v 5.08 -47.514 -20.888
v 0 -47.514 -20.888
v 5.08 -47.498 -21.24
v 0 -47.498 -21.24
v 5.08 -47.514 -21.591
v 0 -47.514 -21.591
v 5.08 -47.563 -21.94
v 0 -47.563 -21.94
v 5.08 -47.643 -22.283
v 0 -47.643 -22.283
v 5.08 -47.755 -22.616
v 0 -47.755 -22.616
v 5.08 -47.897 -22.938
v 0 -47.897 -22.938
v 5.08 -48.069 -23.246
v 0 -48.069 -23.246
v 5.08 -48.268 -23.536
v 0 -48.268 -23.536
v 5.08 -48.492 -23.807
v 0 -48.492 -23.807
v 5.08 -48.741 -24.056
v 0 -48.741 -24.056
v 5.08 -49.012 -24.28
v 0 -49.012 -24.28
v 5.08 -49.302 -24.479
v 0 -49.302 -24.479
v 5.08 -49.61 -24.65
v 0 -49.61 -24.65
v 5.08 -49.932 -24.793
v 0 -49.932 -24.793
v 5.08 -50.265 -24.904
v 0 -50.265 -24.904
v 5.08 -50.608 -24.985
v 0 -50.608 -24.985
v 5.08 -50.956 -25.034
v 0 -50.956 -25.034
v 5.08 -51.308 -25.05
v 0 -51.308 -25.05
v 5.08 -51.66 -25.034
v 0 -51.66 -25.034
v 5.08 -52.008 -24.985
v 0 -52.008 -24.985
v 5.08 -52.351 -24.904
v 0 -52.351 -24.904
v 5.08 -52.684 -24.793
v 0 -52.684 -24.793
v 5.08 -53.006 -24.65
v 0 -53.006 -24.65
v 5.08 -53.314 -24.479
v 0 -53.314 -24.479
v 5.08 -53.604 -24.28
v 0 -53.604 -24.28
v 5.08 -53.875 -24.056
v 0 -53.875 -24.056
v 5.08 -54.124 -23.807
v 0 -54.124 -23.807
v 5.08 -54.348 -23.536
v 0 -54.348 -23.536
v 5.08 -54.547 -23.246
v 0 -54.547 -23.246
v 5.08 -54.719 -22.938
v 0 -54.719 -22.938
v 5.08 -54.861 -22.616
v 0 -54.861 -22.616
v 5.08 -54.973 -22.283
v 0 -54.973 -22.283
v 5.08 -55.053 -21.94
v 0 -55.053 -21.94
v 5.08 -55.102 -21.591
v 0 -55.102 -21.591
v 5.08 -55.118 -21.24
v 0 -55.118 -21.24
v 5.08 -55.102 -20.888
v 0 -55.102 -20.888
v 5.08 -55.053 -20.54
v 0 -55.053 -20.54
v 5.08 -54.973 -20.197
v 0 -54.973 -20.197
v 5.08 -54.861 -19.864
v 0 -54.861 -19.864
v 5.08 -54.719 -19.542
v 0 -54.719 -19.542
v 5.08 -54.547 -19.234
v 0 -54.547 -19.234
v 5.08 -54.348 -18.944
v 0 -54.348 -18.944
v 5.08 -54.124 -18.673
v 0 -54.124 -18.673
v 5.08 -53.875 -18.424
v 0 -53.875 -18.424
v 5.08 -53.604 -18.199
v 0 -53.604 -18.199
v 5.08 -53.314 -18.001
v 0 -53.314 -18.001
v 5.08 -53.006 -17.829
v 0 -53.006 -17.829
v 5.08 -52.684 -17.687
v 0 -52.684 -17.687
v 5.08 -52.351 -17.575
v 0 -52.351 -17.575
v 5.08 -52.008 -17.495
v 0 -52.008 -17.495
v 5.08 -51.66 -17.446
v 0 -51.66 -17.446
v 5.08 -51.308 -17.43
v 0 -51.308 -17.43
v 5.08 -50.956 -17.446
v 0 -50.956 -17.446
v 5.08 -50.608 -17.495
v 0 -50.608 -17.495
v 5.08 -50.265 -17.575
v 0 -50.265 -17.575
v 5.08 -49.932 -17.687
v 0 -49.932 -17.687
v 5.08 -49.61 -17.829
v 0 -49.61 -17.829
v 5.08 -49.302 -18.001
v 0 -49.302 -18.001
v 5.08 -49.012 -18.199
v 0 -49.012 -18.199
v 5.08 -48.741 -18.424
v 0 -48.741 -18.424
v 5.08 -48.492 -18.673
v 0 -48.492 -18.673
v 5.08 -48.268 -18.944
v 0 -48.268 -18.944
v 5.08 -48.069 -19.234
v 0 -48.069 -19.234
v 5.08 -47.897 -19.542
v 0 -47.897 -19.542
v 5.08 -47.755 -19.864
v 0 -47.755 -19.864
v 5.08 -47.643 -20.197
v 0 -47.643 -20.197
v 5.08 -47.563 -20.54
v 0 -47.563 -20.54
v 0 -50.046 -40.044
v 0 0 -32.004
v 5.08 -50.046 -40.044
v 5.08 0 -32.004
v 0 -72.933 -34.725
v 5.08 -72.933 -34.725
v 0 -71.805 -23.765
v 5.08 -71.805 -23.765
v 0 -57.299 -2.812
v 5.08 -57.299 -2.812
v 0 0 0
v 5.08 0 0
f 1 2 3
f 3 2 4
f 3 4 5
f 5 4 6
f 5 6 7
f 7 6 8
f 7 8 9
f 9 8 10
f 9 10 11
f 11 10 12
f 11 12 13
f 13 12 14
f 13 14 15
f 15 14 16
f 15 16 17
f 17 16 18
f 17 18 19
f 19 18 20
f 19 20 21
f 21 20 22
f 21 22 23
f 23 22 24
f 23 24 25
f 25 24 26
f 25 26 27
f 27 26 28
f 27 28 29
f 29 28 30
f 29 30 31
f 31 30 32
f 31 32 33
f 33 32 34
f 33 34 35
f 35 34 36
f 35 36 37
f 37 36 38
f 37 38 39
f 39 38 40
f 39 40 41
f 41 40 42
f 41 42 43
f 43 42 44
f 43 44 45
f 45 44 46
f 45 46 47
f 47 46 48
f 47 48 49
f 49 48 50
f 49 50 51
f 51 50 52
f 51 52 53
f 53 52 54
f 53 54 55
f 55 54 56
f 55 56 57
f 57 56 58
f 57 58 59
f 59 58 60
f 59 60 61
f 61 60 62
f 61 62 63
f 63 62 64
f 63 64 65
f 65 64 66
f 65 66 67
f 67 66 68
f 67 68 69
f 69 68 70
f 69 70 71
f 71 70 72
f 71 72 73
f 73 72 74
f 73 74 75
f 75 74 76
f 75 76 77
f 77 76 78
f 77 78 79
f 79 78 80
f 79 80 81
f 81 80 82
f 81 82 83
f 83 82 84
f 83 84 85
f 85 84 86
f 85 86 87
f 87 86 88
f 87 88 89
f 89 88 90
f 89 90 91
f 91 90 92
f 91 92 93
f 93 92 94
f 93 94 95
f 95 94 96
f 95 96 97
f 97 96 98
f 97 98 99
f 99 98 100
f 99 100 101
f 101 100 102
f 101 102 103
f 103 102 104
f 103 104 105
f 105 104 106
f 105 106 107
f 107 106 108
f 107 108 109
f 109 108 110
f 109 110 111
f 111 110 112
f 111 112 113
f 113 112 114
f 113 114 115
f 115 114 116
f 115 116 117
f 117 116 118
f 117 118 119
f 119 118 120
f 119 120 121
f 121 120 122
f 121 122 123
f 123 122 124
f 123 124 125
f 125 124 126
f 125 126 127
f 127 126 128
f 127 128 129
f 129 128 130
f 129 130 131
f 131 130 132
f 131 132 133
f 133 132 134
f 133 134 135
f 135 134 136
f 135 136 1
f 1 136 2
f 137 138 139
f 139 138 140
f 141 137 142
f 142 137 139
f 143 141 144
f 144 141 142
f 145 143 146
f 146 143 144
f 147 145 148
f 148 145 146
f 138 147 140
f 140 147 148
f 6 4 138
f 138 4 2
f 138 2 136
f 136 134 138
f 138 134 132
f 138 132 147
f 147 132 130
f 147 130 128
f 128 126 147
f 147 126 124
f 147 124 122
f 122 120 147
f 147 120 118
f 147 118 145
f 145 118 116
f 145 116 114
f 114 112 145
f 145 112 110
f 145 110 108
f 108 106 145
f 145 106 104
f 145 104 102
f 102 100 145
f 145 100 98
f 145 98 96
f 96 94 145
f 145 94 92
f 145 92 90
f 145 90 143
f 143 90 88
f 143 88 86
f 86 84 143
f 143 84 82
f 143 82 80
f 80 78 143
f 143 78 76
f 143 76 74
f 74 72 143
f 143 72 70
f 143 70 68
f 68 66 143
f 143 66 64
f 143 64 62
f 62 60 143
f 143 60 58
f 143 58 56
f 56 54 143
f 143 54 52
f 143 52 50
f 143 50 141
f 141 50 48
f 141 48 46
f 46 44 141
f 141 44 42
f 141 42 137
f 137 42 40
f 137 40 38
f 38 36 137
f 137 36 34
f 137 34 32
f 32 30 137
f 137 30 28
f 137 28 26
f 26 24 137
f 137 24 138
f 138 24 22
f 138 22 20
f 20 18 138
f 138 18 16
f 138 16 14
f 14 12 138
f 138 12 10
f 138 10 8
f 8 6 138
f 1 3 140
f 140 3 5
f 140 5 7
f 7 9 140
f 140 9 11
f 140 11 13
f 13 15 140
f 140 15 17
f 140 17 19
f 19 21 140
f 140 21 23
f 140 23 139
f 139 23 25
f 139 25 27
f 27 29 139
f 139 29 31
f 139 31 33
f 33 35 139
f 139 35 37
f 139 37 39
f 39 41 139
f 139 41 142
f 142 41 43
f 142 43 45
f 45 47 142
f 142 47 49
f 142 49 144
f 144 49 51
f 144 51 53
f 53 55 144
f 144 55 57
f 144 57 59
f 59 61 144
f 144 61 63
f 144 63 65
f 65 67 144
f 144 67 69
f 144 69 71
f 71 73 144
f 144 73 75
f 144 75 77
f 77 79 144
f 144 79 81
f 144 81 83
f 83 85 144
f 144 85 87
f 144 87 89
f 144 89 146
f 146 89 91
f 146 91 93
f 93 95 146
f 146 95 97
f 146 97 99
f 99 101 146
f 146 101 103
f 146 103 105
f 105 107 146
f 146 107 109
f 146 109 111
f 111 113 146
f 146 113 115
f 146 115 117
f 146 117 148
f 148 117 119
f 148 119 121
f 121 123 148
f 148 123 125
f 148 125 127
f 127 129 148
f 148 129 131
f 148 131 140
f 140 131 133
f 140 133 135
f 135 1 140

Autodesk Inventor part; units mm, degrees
ref_plane "YZ Plane" through (0, 0, 0) normal (1, 0, 0) x (0, 1, 0)
ref_plane "XZ Plane" through (0, 0, 0) normal (0, 1, 0) x (-1, 0, 0)
ref_plane "XY Plane" through (0, 0, 0) normal (0, 0, 1) x (1, 0, 0)
sketch "Sketch1" plane through (0, 0, 0) normal (1, 0, 0) x (0, 1, 0)
  line L0 (0, 0) -> (0, -32.004)
  line L1 (6.1409, 0) -> (6.1409, -25.4) construction
  line L2 (0, -32.004) -> (-50.0461, -40.0442)
  line L3 (-50.0461, -40.0442) -> (-72.9333, -34.7254)
  line L4 (-72.9333, -34.7254) -> (-71.805, -23.7653)
  line L5 (-71.805, -23.7653) -> (-57.2991, -2.8123)
  line L6 (-57.2991, -2.8123) -> (0, 0)
  circle A0 centre (-51.308, -21.2399) radius 3.81
  dimension "d0" = 32.004
  dimension "d1" = 25.4
  dimension "d2" = 7.62
  dimension "d3" = 51.308
extrude "Extrusion1" add sketch "Sketch1" along normal blind 5.08
properties part number "Handle Insert V1"
